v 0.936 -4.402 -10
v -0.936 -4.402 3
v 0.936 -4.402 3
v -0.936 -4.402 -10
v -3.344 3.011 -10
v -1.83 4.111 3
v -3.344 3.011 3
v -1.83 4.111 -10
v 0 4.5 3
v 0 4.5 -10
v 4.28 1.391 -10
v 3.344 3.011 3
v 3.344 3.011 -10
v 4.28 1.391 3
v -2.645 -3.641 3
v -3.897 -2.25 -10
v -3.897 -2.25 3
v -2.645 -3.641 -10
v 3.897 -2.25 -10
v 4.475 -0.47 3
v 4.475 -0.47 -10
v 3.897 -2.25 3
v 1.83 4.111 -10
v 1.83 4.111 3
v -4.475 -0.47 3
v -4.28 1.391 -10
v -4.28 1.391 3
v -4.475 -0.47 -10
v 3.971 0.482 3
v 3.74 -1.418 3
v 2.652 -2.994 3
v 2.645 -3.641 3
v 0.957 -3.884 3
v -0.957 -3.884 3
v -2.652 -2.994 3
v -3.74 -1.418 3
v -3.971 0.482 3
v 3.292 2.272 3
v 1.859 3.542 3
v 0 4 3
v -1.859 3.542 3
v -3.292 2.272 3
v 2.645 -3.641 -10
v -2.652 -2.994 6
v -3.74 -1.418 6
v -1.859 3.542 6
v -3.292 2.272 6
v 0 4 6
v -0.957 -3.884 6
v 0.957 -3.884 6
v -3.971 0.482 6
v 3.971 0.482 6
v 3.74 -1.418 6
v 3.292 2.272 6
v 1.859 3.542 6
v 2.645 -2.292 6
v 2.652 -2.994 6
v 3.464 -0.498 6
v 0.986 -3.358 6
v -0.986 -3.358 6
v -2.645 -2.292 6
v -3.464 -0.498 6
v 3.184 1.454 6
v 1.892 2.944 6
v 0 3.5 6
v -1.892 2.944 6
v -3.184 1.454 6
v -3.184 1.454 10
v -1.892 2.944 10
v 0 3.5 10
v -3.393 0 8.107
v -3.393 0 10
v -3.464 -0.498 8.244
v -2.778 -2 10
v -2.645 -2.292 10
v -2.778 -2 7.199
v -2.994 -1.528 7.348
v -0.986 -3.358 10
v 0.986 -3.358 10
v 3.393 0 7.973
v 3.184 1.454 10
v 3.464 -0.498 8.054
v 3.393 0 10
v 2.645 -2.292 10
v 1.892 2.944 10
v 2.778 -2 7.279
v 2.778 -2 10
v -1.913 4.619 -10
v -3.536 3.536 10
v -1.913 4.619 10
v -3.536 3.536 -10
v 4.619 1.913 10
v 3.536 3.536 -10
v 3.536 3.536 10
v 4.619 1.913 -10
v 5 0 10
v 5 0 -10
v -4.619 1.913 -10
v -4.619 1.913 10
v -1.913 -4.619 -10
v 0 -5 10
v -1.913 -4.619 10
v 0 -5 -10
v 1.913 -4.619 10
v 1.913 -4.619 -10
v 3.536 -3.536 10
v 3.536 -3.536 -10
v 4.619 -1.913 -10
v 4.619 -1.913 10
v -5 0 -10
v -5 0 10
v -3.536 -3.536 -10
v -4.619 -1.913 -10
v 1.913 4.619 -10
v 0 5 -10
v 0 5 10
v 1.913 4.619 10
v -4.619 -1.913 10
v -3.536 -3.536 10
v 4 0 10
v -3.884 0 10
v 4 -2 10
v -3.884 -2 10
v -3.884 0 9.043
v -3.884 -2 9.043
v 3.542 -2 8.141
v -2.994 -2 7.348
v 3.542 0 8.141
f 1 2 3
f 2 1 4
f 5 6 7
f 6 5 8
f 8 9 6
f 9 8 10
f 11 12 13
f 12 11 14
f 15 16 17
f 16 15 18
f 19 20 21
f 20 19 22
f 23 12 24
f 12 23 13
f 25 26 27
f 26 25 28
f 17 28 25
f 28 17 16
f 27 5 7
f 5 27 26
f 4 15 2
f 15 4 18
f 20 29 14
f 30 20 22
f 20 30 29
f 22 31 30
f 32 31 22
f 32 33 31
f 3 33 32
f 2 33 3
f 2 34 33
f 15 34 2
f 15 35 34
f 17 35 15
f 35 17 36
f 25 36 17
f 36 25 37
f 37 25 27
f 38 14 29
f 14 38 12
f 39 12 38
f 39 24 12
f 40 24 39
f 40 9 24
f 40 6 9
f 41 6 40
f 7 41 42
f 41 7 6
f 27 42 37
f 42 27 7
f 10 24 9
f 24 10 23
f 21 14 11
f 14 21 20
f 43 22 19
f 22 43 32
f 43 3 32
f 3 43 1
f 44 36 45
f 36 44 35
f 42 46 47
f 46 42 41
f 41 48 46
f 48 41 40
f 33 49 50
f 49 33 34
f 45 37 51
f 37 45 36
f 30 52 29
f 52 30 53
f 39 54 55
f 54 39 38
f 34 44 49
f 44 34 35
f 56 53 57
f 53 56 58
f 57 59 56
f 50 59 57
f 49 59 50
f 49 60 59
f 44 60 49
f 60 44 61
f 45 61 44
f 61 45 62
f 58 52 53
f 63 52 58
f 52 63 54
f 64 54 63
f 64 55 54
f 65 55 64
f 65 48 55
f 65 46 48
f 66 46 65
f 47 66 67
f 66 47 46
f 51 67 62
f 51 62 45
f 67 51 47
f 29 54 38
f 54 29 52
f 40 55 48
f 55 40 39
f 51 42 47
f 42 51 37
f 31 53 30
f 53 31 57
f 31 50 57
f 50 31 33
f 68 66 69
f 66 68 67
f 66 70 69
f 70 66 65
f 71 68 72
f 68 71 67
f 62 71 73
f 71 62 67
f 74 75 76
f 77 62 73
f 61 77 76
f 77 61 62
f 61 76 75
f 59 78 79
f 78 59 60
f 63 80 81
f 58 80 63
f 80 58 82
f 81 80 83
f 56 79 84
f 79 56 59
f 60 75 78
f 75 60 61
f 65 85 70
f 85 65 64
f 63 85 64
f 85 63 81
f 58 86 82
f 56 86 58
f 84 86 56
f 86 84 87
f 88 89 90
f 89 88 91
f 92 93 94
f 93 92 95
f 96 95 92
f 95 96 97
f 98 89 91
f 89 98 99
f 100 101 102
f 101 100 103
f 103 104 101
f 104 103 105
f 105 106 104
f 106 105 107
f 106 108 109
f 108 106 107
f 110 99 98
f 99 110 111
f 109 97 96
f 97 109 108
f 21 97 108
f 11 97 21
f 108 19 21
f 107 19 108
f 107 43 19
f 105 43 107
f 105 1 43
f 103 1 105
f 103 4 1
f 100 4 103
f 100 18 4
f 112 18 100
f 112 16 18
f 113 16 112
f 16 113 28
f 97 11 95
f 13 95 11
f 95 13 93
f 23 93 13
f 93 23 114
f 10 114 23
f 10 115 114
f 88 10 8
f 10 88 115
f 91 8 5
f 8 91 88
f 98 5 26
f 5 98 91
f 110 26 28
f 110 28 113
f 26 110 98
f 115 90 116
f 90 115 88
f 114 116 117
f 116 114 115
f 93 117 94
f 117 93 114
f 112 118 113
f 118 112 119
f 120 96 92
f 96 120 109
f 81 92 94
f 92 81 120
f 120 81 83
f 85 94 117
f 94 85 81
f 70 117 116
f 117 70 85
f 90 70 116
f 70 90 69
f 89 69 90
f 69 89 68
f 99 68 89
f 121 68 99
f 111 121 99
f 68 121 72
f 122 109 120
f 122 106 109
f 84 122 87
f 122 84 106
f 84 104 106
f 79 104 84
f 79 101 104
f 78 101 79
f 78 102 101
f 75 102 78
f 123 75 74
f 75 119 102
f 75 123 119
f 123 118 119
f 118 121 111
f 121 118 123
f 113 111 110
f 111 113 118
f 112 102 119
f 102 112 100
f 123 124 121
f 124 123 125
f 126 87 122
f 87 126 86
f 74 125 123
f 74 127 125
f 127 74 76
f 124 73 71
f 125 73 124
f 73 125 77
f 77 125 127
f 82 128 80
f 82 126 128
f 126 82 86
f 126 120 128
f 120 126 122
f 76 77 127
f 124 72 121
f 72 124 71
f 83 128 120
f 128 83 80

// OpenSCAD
module main_object() {
    difference() {
        // Main cylindrical body
        cylinder(h=20, d=10, center=true);

        translate([0, 0, -10])
            rotate([0, 0, 90])
            cylinder(h=20, d=8, center=true);

        translate([0, 0, 10])
            rotate([0, 0, 90])
            cylinder(h=20, d=7, center=true);
        
        // Adding grooves
        for (i = [1:3])
            translate([0, 0, 2*i*1.5 - 10]) {
                rotate([0, 0, 90])
                cylinder(h=20, d=10 - i, center=true);
            }
        
        // Feature at the front end
        translate([0, 0, 10])
            rotate([90, 0, 0])
            cylinder(h=2, d=8);

        translate([0, 0, 10])
            rotate([90, 0, 0])
            cylinder(h=2, d=4);

        translate([0, 0, 10])
            rotate([0, 0, 45])
            cylinder(h=2, d=6);
    }
}

main_object();
